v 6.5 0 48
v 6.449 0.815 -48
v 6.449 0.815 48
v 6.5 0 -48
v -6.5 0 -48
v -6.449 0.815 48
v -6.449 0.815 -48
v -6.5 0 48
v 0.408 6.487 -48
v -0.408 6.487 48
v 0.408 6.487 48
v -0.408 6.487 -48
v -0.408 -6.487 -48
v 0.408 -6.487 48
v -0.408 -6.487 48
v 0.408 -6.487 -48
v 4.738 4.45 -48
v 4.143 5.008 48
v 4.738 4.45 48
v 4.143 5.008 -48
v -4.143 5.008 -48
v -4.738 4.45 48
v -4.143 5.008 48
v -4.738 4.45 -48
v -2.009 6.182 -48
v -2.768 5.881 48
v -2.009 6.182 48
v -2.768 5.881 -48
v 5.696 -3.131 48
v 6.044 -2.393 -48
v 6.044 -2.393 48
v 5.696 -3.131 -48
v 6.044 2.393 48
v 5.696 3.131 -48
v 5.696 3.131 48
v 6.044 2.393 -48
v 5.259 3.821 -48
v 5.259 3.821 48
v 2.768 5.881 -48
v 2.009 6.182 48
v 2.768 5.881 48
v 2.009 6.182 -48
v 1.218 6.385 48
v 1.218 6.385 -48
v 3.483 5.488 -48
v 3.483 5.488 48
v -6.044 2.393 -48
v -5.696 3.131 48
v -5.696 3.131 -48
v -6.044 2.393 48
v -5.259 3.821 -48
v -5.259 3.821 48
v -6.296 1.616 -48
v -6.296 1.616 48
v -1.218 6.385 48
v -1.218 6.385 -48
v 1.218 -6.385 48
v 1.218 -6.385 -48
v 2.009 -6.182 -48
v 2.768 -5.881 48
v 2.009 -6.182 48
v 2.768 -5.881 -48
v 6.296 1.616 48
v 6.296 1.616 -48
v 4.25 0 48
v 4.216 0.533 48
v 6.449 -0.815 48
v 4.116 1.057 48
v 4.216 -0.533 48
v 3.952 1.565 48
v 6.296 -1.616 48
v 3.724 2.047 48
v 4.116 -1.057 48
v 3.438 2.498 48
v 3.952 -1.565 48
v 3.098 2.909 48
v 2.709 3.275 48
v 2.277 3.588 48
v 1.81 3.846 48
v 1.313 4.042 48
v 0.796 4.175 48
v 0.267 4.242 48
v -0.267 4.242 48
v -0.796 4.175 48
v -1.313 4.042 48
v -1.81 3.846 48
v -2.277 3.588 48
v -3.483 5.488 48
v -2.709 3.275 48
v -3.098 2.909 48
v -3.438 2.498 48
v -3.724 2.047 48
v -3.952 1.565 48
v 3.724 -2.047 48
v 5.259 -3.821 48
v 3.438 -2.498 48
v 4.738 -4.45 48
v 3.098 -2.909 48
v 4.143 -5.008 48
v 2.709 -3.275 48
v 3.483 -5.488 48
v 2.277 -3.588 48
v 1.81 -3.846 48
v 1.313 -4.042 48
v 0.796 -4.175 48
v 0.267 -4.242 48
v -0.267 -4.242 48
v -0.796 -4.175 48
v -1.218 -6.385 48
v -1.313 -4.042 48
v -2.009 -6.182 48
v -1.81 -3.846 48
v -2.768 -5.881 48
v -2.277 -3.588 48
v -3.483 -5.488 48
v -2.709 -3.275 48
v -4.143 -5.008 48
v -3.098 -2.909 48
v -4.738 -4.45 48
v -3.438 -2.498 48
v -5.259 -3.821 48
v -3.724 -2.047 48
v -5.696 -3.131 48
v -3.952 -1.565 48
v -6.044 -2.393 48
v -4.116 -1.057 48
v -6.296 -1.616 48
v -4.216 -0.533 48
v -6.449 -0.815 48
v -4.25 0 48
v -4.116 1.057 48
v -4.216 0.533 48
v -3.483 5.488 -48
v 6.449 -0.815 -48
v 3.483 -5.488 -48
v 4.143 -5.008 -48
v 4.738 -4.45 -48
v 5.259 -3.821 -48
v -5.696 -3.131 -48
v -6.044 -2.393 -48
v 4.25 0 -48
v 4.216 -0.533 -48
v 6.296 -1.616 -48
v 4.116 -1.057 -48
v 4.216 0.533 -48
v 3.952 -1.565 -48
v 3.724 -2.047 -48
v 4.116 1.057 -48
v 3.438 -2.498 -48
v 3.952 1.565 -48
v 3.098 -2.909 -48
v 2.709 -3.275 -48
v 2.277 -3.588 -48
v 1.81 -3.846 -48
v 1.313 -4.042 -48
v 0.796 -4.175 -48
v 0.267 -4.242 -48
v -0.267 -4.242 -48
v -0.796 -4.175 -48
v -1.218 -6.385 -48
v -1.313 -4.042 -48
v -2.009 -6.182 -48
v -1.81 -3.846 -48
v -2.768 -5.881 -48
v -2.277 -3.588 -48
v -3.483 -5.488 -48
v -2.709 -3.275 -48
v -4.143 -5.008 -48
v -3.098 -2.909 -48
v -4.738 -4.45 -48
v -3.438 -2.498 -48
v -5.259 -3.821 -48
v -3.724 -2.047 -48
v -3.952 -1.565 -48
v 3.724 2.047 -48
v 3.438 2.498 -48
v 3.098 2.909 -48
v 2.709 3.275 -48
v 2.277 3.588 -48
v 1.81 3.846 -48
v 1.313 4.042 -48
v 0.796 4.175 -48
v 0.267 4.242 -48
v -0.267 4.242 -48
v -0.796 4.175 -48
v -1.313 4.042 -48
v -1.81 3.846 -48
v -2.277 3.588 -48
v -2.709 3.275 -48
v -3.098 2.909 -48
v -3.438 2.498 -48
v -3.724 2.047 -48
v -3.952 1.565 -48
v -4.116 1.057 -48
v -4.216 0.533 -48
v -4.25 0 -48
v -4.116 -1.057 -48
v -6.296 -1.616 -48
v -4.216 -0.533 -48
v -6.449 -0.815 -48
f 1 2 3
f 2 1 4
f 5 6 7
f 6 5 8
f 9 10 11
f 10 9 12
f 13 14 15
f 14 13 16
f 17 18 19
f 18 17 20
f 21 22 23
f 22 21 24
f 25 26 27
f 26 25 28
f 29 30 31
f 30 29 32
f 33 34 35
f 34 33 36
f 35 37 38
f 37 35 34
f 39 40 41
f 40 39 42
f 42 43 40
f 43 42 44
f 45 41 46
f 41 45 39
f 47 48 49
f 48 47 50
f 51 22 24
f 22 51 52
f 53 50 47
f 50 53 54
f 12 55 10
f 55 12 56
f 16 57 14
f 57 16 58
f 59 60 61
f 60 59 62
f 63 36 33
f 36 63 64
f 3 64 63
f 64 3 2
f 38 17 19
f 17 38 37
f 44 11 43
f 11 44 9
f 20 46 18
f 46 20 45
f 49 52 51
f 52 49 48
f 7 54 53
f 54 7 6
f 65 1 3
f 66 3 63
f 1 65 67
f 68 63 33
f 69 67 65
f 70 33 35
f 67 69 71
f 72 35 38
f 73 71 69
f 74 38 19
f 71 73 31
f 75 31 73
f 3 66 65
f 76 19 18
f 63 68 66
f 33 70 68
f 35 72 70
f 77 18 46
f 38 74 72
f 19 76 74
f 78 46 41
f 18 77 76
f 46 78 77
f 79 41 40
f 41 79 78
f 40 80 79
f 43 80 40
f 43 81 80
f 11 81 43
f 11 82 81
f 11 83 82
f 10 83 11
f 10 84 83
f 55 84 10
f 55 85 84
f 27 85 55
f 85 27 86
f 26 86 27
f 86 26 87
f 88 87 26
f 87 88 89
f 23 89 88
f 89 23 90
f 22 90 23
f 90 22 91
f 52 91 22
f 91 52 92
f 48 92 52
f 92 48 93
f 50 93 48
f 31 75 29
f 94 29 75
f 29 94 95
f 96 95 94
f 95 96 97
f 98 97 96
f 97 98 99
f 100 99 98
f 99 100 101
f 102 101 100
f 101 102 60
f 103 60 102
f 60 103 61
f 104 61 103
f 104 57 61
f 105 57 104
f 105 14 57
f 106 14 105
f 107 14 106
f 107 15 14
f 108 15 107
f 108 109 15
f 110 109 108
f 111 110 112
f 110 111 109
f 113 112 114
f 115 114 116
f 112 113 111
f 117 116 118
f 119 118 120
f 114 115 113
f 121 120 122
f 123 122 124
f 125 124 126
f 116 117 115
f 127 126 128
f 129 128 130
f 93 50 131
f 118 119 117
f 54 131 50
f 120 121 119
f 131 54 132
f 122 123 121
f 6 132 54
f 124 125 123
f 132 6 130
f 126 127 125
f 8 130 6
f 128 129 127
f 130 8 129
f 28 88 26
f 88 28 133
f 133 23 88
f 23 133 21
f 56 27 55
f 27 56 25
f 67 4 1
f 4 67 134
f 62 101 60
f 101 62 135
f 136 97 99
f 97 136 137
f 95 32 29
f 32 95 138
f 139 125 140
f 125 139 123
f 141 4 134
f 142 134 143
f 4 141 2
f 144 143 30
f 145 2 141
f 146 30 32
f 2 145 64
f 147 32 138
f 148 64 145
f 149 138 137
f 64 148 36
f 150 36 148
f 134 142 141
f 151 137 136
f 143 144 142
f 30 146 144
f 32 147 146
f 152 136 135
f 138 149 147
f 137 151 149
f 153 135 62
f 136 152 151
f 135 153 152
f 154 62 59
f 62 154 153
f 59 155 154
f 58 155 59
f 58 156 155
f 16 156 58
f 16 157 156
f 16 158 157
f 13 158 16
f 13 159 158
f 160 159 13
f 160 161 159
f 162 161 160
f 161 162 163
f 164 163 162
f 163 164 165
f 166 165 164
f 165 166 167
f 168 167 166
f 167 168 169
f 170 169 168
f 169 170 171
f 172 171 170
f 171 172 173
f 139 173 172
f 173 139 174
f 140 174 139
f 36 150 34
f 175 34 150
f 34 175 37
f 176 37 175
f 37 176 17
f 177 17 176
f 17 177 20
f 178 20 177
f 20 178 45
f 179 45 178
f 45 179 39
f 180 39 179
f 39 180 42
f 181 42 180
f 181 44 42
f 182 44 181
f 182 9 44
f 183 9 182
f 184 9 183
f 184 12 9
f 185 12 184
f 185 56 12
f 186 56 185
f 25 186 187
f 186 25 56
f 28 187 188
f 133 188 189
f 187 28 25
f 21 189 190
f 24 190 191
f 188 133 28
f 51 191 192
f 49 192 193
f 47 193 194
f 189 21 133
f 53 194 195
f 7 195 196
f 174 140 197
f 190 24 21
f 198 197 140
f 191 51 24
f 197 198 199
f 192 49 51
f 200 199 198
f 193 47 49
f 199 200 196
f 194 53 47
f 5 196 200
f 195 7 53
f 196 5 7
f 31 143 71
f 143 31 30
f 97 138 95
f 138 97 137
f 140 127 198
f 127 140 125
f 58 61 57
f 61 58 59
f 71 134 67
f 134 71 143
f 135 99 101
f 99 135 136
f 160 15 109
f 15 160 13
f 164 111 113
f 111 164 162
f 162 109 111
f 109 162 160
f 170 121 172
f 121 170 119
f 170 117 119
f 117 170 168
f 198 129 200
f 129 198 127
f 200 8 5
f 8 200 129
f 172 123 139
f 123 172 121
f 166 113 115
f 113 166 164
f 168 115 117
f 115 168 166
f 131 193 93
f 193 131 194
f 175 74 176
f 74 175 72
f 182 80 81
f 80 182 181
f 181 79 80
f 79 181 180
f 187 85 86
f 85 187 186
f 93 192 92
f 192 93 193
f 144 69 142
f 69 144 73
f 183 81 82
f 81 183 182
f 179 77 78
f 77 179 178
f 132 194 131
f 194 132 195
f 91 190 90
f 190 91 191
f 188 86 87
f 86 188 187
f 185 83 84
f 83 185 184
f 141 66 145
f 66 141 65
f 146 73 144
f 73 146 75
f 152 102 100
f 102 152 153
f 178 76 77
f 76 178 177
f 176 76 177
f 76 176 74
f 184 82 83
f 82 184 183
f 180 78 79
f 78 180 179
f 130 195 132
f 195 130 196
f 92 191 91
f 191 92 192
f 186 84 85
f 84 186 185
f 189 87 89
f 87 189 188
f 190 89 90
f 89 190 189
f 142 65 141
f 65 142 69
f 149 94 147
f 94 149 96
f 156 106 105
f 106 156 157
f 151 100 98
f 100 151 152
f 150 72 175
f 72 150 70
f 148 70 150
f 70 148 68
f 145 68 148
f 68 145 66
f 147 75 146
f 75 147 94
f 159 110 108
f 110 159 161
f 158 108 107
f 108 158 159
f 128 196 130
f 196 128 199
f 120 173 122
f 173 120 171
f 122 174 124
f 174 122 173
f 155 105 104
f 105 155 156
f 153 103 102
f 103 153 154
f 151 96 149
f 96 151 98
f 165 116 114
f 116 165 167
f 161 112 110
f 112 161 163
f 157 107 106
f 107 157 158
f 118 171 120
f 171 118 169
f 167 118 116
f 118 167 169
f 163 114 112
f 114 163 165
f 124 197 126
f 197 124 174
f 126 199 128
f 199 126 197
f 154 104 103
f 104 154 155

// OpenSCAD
$fn = 50;


difference() {
	union() {
		translate(v = [0, 0, -48.0000000000]) {
			cylinder(h = 96, r = 6.5000000000);
		}
	}
	union() {
		translate(v = [0, 0, -100.0000000000]) {
			cylinder(h = 200, r = 4.2500000000);
		}
	}
}
